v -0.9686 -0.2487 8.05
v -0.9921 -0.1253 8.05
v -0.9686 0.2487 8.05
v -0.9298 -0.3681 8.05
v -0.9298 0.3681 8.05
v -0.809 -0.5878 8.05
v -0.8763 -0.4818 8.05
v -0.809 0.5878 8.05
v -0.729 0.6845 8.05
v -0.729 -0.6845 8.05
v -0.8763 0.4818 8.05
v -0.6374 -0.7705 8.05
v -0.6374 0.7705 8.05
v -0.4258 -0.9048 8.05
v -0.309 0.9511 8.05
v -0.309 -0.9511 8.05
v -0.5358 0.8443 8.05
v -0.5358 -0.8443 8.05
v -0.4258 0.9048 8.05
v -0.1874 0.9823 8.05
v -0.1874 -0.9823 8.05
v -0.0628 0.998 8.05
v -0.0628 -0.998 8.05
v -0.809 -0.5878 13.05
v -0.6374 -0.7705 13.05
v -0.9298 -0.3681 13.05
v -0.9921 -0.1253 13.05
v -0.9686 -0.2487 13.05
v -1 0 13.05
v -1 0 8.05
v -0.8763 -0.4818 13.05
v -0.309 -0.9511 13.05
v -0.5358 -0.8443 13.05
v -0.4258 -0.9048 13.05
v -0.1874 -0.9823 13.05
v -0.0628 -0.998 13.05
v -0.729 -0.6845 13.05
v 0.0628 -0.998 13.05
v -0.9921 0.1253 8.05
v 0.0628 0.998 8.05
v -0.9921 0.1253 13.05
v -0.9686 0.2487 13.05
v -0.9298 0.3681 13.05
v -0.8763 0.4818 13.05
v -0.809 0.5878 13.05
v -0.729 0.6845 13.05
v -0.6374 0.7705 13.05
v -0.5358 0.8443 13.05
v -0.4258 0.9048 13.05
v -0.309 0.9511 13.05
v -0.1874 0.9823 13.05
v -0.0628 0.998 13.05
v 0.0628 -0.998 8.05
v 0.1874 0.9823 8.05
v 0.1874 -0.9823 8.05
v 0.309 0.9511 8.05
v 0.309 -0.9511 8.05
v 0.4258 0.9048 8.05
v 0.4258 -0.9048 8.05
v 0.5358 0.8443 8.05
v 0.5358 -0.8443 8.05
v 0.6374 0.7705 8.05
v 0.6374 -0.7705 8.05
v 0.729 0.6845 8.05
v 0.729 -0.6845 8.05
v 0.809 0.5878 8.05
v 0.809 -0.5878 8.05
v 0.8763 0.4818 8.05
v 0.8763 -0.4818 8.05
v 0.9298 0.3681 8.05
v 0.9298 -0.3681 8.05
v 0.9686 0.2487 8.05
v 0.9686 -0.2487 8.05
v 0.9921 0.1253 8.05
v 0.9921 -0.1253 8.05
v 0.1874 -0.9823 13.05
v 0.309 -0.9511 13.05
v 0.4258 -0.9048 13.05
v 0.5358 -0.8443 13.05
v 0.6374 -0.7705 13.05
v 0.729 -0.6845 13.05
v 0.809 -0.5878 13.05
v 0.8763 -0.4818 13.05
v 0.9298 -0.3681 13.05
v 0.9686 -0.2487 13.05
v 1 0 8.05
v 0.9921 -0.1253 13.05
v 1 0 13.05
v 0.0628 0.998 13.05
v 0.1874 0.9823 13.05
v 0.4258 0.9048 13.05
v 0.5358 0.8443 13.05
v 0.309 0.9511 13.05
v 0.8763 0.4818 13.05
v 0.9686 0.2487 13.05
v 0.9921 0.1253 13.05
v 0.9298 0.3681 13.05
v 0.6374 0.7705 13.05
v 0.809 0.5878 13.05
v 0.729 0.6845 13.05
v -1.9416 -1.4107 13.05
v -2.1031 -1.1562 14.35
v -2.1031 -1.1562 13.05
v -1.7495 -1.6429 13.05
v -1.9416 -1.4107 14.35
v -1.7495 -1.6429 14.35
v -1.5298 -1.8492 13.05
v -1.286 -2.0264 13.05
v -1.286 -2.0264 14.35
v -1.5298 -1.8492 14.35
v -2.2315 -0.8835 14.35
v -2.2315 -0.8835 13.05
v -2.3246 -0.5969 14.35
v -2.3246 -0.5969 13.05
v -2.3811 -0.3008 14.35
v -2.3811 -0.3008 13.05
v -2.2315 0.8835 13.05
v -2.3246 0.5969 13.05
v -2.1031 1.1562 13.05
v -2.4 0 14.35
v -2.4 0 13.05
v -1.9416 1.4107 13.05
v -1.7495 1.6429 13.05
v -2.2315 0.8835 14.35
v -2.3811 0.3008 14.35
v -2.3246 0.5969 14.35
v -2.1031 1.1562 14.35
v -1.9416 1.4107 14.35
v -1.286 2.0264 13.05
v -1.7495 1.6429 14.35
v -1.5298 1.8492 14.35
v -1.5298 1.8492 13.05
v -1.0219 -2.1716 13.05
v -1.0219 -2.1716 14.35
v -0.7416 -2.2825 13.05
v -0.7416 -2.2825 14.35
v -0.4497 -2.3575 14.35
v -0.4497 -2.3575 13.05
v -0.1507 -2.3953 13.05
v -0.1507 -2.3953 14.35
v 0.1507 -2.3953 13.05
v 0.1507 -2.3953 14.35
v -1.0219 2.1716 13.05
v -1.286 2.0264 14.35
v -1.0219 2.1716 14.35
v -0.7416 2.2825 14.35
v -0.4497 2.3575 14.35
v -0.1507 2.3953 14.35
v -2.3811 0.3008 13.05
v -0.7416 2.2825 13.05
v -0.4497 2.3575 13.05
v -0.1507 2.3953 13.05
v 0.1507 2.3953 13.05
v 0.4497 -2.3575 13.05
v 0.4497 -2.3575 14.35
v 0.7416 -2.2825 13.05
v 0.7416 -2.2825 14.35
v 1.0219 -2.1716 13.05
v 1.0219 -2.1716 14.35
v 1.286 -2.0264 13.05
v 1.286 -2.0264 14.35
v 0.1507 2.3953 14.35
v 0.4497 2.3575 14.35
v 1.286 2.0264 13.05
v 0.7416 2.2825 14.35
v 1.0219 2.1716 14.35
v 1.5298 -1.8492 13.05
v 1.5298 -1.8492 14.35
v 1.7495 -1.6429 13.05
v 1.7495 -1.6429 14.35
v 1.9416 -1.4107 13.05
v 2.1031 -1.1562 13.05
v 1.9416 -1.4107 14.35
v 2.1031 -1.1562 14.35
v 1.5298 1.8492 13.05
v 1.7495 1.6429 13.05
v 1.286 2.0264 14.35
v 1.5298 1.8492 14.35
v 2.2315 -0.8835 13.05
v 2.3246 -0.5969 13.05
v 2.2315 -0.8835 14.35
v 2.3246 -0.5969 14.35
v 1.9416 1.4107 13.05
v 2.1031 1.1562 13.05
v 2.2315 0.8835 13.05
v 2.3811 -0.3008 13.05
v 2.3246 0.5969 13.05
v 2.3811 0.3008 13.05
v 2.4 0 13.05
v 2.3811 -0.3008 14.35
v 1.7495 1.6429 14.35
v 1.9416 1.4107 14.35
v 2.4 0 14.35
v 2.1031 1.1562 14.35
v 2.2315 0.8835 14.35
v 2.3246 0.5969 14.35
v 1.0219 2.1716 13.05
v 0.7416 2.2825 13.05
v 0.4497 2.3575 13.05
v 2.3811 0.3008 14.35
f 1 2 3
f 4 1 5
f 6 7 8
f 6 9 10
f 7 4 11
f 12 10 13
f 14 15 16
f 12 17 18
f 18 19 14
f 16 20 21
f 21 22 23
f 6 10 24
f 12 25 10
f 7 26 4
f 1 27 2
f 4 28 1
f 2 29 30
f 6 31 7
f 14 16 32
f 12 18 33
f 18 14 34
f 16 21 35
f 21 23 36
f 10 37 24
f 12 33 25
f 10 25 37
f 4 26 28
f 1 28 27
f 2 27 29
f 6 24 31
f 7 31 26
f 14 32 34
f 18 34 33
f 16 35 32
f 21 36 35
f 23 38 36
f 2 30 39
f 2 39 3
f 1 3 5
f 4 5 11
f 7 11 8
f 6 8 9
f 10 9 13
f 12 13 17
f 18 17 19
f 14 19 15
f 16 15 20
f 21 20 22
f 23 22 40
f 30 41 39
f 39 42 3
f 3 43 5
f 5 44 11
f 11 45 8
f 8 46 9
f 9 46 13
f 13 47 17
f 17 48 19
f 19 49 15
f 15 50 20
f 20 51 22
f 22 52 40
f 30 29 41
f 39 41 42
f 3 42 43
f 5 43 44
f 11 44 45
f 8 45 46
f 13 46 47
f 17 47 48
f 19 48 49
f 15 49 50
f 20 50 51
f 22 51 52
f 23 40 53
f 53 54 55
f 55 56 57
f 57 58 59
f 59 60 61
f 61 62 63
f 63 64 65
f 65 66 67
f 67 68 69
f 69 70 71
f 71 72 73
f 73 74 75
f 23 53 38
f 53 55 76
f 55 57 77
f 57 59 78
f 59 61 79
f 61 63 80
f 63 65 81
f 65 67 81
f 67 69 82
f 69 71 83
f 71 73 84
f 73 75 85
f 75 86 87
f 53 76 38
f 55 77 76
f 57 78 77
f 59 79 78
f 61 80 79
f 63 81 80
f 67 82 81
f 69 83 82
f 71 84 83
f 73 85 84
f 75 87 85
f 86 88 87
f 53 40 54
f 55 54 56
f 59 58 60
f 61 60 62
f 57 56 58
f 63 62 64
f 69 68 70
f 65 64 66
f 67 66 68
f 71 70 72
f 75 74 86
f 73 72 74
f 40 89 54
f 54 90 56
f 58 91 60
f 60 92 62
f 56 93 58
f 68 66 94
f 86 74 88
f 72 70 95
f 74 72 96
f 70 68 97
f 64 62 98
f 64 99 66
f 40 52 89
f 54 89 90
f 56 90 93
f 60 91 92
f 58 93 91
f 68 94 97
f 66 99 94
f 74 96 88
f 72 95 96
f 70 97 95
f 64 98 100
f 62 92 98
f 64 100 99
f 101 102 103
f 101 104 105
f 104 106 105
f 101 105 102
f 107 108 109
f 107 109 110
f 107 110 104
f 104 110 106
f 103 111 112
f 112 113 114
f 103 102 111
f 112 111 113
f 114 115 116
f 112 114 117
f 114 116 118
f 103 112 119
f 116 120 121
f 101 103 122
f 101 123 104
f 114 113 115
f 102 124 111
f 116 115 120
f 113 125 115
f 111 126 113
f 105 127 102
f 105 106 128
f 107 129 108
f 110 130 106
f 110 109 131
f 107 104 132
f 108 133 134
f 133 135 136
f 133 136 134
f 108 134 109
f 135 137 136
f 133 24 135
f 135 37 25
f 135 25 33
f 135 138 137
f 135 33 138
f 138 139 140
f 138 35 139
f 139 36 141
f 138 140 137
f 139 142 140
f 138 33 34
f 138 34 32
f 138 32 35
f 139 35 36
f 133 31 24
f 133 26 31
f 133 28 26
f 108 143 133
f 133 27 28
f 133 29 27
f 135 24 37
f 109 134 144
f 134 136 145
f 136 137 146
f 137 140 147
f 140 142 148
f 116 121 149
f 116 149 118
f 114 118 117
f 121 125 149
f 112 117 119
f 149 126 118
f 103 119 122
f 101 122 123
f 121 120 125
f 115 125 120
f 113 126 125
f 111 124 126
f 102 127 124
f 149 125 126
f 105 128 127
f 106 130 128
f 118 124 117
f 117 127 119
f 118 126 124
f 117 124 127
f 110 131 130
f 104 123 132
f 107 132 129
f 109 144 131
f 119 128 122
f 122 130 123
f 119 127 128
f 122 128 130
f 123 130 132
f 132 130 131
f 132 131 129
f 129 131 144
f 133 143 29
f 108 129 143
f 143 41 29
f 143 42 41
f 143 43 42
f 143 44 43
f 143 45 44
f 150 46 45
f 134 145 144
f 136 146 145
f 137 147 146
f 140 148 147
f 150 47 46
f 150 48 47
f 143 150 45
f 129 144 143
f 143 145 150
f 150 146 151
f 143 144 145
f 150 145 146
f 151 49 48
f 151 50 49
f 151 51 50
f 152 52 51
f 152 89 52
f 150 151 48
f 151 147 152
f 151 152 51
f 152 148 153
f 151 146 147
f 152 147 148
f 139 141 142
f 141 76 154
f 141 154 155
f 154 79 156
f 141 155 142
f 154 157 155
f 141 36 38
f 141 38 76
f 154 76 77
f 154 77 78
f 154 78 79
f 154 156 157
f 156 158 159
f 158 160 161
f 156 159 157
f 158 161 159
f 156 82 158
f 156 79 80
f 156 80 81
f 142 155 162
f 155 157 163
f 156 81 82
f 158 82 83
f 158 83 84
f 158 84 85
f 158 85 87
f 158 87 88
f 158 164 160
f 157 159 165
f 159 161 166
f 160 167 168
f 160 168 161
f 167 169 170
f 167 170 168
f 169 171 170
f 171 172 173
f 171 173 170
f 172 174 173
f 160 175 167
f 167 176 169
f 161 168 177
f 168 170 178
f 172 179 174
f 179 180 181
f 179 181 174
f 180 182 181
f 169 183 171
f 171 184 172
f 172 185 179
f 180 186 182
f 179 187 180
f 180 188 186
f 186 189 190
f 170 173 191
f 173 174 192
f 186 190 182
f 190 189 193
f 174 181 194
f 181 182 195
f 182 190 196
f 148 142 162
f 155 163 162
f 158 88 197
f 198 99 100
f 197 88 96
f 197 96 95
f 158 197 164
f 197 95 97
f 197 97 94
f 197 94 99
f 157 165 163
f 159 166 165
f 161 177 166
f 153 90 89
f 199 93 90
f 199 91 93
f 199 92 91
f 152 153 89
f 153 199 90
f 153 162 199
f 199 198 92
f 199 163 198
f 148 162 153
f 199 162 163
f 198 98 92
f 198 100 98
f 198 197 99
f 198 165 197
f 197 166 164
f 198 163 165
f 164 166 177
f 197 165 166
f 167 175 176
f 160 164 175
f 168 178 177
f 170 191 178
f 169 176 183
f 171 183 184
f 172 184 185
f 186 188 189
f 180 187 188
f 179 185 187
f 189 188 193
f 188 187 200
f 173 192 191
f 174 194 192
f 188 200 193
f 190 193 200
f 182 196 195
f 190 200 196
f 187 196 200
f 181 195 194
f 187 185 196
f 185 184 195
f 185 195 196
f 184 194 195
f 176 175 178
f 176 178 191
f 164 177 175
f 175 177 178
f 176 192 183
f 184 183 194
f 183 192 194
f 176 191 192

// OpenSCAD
$fn = 50;

difference() {
	union() {
		translate(v = [0, 0, 8.05]) {
			cylinder(h = 5, r = 1.0);
		}
		translate(v = [0, 0, 13.05]) {
			cylinder(h = 1.3, r = 2.4);
		}
	}
	union();
}
